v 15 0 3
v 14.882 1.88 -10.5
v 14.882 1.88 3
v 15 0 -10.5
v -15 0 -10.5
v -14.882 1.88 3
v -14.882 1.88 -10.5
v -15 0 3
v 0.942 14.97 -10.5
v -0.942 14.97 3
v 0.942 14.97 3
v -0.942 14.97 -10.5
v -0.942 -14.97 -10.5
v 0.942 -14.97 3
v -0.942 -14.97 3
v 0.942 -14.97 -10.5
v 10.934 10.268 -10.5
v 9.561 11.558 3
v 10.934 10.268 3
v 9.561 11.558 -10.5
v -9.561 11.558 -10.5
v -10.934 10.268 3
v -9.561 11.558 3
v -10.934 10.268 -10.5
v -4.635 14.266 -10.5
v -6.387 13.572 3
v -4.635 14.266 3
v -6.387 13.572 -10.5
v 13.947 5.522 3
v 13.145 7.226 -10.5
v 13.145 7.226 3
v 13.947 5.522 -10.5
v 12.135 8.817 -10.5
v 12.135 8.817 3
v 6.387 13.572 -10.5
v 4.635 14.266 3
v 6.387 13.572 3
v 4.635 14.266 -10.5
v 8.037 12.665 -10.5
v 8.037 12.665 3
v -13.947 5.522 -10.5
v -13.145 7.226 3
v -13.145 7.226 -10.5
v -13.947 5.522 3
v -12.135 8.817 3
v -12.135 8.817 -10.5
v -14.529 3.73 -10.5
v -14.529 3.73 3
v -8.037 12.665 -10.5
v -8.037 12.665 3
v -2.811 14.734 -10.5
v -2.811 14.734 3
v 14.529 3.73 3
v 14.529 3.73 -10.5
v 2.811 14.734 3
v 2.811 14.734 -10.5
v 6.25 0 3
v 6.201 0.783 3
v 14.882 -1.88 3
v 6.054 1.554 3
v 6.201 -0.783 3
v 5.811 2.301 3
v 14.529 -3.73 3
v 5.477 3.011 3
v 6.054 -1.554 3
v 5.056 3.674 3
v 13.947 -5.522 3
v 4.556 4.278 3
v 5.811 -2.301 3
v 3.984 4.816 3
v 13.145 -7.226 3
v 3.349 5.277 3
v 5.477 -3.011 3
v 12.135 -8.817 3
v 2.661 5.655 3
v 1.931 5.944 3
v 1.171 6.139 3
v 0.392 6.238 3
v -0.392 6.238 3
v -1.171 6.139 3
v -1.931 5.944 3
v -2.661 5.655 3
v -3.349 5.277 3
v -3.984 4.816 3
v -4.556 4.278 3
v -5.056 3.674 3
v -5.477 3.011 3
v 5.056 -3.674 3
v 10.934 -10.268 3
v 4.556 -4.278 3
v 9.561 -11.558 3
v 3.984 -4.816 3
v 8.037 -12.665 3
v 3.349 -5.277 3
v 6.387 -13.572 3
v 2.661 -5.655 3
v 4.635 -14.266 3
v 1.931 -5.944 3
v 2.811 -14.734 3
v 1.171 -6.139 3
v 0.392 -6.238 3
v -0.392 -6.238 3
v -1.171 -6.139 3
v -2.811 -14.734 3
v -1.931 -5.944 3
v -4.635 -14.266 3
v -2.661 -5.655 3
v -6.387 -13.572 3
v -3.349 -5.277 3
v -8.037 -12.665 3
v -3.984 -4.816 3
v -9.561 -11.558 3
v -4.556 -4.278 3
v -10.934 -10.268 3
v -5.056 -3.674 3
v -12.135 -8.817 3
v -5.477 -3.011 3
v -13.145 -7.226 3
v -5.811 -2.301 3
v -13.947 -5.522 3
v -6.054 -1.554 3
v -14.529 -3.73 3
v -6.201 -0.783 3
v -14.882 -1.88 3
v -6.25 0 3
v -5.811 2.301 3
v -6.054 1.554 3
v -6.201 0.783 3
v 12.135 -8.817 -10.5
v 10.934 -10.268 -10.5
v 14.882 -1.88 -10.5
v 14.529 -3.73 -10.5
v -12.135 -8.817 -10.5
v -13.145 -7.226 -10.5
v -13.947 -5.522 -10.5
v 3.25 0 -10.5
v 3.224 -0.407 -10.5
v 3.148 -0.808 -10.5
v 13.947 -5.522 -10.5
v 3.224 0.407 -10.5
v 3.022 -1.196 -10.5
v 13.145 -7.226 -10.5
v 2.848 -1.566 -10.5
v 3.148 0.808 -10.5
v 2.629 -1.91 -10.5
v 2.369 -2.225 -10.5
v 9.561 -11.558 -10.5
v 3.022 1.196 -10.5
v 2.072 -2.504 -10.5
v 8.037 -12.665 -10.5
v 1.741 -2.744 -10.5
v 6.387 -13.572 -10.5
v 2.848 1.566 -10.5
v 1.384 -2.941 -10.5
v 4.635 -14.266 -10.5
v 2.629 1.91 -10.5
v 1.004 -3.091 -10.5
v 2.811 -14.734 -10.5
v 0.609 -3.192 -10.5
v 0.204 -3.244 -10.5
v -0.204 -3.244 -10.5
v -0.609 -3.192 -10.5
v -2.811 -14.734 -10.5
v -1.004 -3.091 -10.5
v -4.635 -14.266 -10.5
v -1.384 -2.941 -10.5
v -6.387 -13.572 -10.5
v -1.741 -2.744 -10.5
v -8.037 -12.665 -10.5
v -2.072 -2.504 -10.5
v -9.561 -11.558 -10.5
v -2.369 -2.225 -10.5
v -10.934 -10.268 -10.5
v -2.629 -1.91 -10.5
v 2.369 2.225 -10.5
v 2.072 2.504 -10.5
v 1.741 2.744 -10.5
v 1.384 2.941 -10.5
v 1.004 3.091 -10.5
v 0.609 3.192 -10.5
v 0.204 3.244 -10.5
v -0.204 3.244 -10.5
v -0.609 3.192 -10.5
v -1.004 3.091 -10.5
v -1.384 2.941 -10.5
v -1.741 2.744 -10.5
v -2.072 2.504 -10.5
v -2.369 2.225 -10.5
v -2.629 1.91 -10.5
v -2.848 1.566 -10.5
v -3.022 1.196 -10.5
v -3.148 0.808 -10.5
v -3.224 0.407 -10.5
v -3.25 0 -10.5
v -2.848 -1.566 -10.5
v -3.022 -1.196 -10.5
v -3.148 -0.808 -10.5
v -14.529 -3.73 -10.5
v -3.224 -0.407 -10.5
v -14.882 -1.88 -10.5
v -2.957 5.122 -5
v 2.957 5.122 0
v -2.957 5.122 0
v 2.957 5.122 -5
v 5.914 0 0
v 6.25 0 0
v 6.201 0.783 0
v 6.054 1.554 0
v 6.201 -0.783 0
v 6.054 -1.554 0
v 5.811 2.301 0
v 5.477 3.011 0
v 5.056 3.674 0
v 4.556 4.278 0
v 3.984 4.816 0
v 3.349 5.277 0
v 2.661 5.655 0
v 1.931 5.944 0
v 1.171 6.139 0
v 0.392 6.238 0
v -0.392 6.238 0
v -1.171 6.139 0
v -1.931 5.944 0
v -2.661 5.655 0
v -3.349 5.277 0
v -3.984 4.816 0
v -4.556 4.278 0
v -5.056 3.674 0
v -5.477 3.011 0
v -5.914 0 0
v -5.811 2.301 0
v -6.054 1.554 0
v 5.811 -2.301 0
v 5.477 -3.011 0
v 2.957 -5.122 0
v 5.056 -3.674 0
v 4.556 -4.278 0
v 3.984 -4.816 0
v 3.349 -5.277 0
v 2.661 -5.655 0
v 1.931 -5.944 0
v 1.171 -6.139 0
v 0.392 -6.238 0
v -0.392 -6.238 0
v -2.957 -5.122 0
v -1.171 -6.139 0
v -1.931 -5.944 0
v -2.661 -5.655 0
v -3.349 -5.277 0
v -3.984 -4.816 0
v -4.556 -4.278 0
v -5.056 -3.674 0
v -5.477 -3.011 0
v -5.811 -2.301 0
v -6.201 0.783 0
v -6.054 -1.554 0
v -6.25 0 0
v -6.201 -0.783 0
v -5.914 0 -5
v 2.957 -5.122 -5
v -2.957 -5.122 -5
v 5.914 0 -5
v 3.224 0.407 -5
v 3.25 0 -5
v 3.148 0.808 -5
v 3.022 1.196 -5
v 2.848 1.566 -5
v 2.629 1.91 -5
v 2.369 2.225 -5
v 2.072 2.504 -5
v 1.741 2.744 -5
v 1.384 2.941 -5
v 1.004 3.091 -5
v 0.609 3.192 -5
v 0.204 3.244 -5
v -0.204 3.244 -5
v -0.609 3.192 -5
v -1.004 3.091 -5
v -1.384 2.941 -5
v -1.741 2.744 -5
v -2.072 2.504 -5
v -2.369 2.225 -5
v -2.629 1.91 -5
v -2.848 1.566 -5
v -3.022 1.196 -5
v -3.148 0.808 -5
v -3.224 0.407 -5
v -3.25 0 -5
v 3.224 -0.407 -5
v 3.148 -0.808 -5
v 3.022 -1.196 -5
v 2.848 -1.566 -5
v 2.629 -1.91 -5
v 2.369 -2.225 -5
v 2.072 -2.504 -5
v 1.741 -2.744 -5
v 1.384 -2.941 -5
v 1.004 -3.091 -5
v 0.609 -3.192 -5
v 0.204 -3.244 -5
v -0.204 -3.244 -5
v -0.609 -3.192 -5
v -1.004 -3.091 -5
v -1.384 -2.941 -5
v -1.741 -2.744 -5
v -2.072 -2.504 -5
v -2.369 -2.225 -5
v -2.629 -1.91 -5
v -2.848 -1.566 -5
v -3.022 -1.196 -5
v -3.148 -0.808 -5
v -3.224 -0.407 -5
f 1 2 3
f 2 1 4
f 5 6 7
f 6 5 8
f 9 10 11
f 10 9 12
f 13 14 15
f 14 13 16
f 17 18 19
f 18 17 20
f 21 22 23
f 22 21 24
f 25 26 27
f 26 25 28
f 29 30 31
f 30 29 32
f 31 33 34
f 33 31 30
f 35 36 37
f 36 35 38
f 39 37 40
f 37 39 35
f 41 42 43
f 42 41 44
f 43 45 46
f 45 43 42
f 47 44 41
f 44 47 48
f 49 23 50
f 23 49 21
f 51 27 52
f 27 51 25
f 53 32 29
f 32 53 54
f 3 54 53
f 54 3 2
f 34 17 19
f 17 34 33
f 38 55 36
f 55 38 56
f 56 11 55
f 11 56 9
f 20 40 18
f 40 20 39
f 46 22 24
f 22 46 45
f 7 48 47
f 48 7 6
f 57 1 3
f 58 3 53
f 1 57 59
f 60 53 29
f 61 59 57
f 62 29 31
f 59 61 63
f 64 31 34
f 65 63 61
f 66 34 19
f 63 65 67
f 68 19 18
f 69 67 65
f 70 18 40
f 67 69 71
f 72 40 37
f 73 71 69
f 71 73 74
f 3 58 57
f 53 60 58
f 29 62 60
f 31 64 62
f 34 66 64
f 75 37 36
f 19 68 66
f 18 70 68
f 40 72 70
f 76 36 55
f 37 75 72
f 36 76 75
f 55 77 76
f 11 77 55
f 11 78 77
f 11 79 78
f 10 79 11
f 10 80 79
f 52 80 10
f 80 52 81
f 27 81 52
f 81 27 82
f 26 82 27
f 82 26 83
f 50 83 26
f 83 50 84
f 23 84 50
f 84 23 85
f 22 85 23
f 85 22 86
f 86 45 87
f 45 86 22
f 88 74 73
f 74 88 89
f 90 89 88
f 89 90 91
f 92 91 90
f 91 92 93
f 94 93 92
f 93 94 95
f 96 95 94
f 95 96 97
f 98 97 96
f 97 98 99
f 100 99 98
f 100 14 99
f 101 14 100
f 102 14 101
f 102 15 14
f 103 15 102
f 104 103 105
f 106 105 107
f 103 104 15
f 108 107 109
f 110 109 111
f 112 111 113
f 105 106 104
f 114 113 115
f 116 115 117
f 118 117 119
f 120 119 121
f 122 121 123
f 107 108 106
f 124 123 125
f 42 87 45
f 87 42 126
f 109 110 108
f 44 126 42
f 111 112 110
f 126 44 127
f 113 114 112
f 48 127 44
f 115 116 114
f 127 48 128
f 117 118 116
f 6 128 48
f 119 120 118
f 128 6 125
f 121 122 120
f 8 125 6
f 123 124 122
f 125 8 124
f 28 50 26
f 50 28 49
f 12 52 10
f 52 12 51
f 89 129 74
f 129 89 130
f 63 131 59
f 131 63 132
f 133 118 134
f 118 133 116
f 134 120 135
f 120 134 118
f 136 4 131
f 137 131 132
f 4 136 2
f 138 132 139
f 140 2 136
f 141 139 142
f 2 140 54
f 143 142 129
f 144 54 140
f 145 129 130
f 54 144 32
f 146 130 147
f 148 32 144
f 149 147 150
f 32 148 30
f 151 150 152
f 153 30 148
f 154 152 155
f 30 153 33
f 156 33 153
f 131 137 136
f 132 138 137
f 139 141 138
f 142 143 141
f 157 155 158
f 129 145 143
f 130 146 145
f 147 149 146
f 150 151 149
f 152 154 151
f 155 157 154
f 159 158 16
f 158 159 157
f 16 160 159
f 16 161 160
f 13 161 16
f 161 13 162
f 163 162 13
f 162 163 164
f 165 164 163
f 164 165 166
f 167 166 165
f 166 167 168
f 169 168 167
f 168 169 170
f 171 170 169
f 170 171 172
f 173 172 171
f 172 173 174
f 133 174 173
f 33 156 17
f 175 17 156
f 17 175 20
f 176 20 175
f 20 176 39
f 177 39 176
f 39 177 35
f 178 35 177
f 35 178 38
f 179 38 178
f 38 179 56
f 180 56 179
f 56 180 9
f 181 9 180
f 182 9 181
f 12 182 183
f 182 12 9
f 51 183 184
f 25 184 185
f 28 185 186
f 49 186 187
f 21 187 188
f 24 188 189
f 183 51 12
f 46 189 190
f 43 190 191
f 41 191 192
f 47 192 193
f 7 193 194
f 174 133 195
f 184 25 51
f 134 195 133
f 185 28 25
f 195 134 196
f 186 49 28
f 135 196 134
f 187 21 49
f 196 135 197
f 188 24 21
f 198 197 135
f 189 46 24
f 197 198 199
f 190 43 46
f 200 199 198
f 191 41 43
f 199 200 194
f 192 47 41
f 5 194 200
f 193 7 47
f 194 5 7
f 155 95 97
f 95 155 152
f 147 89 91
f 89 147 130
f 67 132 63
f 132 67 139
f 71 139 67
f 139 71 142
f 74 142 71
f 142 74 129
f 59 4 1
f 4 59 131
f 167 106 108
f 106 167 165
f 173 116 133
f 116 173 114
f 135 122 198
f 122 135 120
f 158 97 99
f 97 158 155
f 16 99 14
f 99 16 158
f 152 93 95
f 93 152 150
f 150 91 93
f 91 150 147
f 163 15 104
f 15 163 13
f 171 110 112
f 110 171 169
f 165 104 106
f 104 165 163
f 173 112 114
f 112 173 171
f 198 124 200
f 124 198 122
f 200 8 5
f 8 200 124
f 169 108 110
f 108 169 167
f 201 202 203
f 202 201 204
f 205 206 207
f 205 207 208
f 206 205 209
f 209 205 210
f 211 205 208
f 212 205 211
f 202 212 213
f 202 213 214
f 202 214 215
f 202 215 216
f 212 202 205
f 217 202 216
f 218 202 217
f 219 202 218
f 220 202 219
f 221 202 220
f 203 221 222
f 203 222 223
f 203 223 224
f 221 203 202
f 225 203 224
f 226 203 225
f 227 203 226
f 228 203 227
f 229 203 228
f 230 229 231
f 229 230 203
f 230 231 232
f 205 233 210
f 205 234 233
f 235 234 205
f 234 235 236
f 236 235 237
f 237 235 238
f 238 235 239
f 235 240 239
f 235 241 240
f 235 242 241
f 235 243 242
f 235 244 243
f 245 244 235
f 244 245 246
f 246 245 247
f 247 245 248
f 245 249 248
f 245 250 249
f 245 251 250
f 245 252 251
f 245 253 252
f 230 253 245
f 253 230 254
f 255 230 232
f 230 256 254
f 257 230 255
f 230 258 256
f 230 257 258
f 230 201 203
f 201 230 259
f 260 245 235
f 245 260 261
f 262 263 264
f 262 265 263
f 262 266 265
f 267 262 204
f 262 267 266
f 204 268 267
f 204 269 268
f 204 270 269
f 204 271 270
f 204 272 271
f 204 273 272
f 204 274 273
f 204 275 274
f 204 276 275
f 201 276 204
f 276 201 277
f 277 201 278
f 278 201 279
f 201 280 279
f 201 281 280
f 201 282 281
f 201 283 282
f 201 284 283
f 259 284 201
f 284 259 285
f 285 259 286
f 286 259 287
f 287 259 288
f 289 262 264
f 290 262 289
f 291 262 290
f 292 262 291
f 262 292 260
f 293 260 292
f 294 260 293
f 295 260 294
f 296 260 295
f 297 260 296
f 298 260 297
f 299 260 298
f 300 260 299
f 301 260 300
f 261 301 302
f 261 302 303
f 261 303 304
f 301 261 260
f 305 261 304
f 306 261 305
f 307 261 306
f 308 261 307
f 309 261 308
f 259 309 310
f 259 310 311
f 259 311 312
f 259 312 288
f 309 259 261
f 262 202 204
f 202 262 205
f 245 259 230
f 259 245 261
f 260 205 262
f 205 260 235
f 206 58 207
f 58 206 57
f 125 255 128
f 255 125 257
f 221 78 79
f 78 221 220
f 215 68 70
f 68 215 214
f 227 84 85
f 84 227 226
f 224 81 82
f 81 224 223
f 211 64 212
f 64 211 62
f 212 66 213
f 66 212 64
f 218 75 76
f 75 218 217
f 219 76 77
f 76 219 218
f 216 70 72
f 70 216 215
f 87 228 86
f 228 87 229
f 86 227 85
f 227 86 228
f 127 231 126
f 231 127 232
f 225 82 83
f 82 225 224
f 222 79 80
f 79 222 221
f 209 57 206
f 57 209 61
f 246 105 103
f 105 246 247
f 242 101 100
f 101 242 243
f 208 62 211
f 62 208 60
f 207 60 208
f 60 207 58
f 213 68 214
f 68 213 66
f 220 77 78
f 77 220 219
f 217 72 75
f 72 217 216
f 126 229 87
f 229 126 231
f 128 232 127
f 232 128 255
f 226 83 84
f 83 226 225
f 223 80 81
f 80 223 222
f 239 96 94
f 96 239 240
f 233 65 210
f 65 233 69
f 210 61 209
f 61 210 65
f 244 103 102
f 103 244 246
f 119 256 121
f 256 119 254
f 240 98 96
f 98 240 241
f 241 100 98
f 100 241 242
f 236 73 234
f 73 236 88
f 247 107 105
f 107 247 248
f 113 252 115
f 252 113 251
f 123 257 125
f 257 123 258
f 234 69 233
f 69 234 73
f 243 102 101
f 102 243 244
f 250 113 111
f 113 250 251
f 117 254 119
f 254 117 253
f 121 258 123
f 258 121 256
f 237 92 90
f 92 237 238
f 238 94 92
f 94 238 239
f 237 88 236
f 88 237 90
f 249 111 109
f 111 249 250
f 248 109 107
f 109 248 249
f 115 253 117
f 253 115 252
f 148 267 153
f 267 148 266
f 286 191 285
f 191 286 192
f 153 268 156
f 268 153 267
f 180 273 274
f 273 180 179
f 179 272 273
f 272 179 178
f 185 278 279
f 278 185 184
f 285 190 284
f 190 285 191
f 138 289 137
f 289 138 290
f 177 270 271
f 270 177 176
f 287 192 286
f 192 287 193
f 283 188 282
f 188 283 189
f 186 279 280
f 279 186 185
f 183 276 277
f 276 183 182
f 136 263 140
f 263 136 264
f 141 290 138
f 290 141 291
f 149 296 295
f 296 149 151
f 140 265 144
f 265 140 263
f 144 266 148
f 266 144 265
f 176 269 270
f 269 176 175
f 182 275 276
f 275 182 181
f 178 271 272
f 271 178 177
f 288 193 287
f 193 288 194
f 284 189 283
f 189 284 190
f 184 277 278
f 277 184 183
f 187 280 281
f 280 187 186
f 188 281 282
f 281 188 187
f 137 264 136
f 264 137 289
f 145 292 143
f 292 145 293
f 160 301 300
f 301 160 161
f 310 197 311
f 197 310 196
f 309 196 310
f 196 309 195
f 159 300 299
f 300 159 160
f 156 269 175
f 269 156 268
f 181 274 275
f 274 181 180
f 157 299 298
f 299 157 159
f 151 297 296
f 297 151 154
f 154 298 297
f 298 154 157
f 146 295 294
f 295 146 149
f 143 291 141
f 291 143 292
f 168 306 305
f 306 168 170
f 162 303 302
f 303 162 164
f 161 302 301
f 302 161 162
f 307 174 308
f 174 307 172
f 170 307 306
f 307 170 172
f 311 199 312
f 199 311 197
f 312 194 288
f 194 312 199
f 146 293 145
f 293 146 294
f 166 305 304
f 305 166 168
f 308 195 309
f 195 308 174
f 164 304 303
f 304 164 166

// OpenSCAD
$fn = 50;

difference() {
	union() {
		translate(v = [0, 0, -10.5]) {
			cylinder(h = 13.5, r = 15.0);
		}
		#translate(v = [0, 0, -12.0]) {
			cylinder(h = 12, r = 2.875);
		}
	}
	union() {
		translate(v = [0, 0, 0]) {
			rotate(a = [0, 0, 0]) {
				difference() {
					union() {
						translate(v = [0, 0, -5]) {
							linear_extrude(height = 5) {
								polygon(points = [[5.914249999999999, 0.0], [2.957125, 5.1218907443321156], [-2.9571249999999982, 5.1218907443321156], [-5.914249999999999, 7.242867331857232e-16], [-2.9571250000000022, -5.121890744332115], [2.9571249999999956, -5.121890744332118]]);
							}
						}
					}
					union();
				}
			}
		}
		#cylinder(h = 3, r = 6.25);
		#translate(v = [0, 0, -100.0]) {
			cylinder(h = 200, r = 3.25);
		}
	}
}
